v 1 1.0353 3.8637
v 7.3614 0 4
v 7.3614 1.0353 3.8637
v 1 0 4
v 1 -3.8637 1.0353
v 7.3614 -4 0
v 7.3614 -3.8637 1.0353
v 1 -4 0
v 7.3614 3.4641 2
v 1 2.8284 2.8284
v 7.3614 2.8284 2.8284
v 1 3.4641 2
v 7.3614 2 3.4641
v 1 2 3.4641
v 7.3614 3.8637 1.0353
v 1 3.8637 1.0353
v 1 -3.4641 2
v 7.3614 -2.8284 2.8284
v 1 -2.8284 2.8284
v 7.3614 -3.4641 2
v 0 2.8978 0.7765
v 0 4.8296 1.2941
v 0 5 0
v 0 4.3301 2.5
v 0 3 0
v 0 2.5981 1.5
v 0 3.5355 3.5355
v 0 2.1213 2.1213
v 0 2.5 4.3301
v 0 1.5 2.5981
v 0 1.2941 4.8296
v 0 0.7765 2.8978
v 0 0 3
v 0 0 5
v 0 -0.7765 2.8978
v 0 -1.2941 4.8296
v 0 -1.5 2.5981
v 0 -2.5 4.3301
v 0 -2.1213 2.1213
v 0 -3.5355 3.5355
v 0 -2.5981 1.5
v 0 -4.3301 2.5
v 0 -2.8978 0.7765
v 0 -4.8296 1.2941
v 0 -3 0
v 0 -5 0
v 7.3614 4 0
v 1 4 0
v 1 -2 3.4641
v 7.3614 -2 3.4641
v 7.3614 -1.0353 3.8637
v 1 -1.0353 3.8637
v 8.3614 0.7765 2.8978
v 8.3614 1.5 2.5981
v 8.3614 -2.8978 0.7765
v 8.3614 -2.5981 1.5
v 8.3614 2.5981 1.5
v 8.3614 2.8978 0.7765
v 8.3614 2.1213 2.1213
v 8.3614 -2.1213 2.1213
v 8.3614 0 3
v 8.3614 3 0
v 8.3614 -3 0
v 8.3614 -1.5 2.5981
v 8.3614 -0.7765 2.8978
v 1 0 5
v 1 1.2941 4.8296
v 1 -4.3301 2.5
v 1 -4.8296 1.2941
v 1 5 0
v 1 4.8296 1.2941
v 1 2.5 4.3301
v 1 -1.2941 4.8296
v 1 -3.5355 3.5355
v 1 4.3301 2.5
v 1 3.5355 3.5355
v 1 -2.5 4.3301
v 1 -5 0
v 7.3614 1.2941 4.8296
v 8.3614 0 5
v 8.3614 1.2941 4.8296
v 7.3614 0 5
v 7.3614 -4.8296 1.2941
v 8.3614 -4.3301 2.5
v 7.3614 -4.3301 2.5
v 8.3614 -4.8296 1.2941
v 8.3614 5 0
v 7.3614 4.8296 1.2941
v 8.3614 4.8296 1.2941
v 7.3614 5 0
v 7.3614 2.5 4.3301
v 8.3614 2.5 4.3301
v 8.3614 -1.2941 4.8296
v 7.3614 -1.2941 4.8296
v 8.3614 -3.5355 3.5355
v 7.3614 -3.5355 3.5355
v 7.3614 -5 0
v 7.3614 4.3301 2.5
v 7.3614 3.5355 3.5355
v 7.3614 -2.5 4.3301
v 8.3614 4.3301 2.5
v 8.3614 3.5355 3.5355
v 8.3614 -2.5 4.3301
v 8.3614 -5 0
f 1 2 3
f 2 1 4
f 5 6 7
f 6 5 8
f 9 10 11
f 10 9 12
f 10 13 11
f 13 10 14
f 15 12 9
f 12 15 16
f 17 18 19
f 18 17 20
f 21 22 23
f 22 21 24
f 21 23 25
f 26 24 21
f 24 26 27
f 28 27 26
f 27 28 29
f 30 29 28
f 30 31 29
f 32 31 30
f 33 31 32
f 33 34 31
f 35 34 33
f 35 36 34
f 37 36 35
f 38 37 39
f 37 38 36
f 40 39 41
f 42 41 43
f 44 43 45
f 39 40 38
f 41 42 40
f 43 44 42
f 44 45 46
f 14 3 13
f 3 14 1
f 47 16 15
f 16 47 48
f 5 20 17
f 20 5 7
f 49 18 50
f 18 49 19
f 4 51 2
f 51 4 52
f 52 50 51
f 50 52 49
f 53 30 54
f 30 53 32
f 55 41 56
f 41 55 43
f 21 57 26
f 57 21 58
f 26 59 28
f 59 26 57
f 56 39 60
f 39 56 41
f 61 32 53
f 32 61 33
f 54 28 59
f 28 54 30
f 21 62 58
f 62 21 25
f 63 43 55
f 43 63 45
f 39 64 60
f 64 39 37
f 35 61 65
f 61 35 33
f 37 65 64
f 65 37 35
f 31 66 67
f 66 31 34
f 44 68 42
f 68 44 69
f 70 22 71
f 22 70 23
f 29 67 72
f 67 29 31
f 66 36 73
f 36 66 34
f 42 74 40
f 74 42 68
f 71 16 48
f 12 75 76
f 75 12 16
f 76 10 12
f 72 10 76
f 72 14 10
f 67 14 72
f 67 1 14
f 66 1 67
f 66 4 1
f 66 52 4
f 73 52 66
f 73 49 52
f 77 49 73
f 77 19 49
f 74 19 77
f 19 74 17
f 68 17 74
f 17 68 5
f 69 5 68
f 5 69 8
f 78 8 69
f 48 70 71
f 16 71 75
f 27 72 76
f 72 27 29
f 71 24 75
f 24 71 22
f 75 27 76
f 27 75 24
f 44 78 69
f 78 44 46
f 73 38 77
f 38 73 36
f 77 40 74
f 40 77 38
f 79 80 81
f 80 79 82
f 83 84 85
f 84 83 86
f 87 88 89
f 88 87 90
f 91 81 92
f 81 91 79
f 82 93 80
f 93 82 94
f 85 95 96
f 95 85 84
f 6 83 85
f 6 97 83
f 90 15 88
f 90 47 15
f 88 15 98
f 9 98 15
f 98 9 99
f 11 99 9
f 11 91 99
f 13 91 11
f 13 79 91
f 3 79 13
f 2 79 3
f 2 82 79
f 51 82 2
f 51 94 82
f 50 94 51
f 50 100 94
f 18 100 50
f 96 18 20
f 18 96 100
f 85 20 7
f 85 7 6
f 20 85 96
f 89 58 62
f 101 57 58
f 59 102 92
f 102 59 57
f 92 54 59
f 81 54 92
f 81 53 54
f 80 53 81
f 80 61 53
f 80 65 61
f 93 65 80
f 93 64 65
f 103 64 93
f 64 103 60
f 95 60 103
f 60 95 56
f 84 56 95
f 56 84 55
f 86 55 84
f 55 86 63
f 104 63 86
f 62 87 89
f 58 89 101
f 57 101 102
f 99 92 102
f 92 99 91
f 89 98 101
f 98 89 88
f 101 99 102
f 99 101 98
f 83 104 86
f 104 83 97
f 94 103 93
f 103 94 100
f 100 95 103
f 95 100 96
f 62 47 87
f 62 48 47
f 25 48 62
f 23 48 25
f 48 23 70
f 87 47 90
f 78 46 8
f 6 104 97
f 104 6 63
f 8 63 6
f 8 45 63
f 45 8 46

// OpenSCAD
// file: ../build_environments.scad
// build_environments.scad: modules to build level sections
//

module pool(diameter=10.0, wall_height=2.0, step_width=3.0, connections=[])
{
    difference() {
        union() {
        difference() {
            cylinder(h=0.5,r1=diameter+step_width,r2=diameter+step_width,$fn=48);
            translate([0,0,-0.1])
                cylinder(h=0.7,r1=diameter,r2=diameter,$fn=48);
        }
        difference() {
            cylinder(h=wall_height,r1=diameter+step_width+1.0,r2=diameter+step_width+1.0,$fn=48);
            translate([0,0,-0.1])
                cylinder(h=wall_height+0.2,r1=diameter+step_width,r2=diameter+step_width,$fn=48);
        }
        }
    
        for (c = connections)
        {
            rotate([0,90,0]) {
                angle = atan2(c[1],c[0]);
                rotate([-angle,0,0]) {
                    cylinder(h=diameter+5.0,r1=c[2],r2=c[2],$fn=48);
                }
            }
        }
    }
}

module straight(length=10.0, width=2.0, dy1=0.0, dy2=0.0, dz=0.0)
{
    dims = [0, 0, 0, 0, 0, (dz/length)];
    matrix = [
        [ 1, dims[0], dims[1], 0 ],
        [ dims[2], 1, dims[4], 0 ],
        [ dims[5], dims[3], 1, 0 ],
        [ 0, 0, 0, 1 ]
    ];
    multmatrix(matrix)
    difference() {
        translate([dy1,0,0])
        union() {
            rotate([0,90,0]) {
                difference() {
                    cylinder(h=(length-dy1-dy2),r1=width+1.0,r2=width+1.0,$fn=24);
                    translate([0,0,-0.1])
                        cylinder(h=(length-dy1-dy2+0.2),r1=width,r2=width,$fn=24);
                }
                difference() {
                    cylinder(h=1.0,r1=width+2.0,r2=width+2.0,$fn=24);
                    translate([0,0,-0.1])
                        cylinder(h=1.2,r1=width,r2=width,$fn=24);
                }
                translate([0,0,(length-dy1-dy2)-1.0]) {
                    difference() {
                        cylinder(h=1.0,r1=width+2.0,r2=width+2.0,$fn=24);
                        translate([0,0,-0.1])
                            cylinder(h=1.2,r1=width,r2=width,$fn=24);
                    }
                }
            }
        }
        translate([0,0,-(2*width+4.0)/2])
            cube([3*length,3*length,2*width+4.0],center=true);
    }
}

module curve(p0=[0,0], center=[0,0], dir=1, angle=0.0, width=2.0)
{
    radius = sqrt((p0[0]-center[0])*(p0[0]-center[0]) + (p0[1]-center[1])*(p0[1]-center[1]));
    if (dir == 0) {
        difference() {
            rotate([0,0,-90])
            difference() {
                rotate_extrude(angle = angle, convexity = 10, $fn=32)
                    translate([radius, 0, 0])
                        circle(r = width+1.0,$fn=24);
                rotate([0,0,-1.0])
                    rotate_extrude(angle = angle+2.0, convexity = 10, $fn=32)
                        translate([radius, 0, 0])
                            circle(r = width,$fn=24);
            }
            translate([0,0,-(2*width+4.0)/2])
                cube([5*radius,5*radius,2*width+4.0],center=true);
        }
    }
    else {
        difference() {
            rotate([0,0,90])
            difference() {
                rotate_extrude(angle = -angle, convexity = 10, $fn=32)
                    translate([radius, 0, 0])
                        circle(r = width+1.0,$fn=24);
                rotate([0,0,1.0])
                    rotate_extrude(angle = -angle-2.0, convexity = 10, $fn=32)
                        translate([radius, 0, 0])
                            circle(r = width,$fn=24);
            }
            translate([0,0,-(2*width+4.0)/2])
                cube([5*radius,5*radius,2*width+4.0],center=true);
        }
    }

}

// test pool
//pool(diameter=12.0000, wall_height=3.0000, step_width=3.0000, connections=[[0.0000,-26.0000,2.0000], [23.6074,0.0000,2.0000]]);

// test straight, slope
//straight(length=26.0000, width=2.0000, dy1=11.8322, dy2=6.7082, dz=0.0000);
//straight(length=29.1549, width=12.0000, dy1=0.0000, dy2=0.0000, dz=-15.0000);

// test curve
//curve(p0=[23.6074, 0.0000], center=[23.6074, 5.0000], dir=0, angle=60.1011, width=2.0000);
//curve(p0=[33.6426, 12.4219], center=[37.9771, 9.9295], dir=1, angle=120.4627, width=2.0000);
// main file
use <../build_environments.scad>;
straight(length=8.3614, width=3.0000, dy1=0.0000, dy2=0.0000, dz=0.0000);
